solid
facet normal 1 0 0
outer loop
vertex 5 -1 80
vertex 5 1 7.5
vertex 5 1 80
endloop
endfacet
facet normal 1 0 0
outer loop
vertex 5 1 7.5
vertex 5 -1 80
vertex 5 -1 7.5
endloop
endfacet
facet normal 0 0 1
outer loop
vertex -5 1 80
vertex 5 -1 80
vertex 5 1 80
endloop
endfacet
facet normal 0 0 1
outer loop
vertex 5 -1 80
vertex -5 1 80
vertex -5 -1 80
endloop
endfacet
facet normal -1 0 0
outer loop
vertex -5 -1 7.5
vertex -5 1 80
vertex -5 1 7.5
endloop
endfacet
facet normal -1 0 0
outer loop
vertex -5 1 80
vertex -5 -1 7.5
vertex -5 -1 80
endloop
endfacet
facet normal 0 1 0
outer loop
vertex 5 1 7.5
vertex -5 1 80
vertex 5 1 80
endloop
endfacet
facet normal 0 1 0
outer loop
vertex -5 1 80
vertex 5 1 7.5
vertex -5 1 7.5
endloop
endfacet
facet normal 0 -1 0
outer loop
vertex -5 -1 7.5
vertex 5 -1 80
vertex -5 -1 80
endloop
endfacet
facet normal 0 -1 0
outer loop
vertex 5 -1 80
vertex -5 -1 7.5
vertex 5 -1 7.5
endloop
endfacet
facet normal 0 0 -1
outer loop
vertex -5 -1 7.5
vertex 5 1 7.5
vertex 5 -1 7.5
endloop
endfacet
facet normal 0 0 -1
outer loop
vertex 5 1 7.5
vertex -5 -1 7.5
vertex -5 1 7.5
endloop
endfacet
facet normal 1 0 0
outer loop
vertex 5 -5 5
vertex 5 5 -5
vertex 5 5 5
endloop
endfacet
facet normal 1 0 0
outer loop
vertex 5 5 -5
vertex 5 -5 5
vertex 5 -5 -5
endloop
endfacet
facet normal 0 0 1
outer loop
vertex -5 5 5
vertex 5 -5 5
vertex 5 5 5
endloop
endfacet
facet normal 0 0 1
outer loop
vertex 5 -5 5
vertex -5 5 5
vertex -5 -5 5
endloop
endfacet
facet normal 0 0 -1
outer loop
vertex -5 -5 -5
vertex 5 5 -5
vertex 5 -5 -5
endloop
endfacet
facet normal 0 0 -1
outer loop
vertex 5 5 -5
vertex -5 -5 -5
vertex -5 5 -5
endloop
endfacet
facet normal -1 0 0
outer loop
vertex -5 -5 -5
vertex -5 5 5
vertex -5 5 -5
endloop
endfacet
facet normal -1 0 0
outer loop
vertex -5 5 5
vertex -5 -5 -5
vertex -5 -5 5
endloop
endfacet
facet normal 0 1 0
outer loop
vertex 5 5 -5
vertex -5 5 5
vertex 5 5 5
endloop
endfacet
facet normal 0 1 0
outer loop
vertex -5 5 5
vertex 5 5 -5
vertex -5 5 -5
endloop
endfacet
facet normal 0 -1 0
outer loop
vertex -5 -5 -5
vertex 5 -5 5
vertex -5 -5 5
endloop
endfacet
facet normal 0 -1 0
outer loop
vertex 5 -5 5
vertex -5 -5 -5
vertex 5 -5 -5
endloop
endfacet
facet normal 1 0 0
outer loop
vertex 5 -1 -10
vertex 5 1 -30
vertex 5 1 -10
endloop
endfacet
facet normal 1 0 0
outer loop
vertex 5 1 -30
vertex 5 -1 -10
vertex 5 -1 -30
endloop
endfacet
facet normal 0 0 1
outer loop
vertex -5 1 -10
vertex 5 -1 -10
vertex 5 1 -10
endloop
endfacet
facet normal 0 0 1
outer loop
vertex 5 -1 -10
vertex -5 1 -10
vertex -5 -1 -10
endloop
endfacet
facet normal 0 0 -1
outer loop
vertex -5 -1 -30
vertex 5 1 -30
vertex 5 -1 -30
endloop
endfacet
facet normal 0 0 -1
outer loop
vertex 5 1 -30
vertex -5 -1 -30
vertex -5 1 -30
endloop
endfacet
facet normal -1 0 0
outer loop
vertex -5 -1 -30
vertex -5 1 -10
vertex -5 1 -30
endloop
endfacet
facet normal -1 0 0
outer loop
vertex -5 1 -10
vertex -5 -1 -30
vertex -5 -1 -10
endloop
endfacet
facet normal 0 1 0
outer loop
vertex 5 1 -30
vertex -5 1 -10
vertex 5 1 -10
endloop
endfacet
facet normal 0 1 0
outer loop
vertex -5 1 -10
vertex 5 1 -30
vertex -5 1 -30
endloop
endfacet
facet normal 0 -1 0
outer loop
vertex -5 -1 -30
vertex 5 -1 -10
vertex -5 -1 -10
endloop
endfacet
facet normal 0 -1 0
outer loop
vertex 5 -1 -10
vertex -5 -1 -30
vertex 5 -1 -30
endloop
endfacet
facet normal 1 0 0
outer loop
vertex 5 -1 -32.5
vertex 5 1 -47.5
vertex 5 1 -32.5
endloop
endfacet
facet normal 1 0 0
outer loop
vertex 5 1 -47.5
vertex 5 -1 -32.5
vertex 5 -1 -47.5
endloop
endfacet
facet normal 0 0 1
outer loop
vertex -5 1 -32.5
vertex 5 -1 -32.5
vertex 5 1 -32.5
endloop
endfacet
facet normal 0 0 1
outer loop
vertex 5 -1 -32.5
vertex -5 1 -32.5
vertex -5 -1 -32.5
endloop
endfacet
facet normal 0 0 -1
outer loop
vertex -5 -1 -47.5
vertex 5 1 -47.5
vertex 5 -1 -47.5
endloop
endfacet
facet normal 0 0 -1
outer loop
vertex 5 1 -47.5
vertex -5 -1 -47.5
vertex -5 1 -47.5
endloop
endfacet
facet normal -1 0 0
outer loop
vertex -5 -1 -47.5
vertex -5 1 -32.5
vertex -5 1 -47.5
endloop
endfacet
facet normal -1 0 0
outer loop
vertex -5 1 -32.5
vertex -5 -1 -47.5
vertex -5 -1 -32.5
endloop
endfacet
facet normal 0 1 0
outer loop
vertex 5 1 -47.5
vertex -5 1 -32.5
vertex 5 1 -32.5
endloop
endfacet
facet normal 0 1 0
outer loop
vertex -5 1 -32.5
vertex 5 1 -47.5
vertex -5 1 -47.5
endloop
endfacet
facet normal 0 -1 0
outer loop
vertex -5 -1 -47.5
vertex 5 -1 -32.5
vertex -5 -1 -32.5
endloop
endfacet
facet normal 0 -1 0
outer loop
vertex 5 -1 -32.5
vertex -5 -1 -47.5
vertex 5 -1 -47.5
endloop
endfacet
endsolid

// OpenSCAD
// Define dimensions for each component
module elongated_block() {
    cube([10, 2, 40], center = true);
}

module rectangular_block_4() {
    cube([10, 2, 20], center = true);
}

module rectangular_block_3() {
    cube([10, 2, 25], center = true);
}

module cube_1() {
    cube([10, 10, 10], center = true);
}

module rectangular_block_2() {
    cube([10, 2, 20], center = true);
}

module rectangular_block_1() {
    cube([10, 2, 15], center = true);
}

// Assemble the model based on the positional relationship
module flexible_coupling() {
    // Layer 1: elongated_block
    translate([0, 0, 60]) elongated_block();
    
    // Layer 2: rectangular_block_4
    translate([0, 0, 40]) rectangular_block_4();
    
    // Layer 3: rectangular_block_3
    translate([0, 0, 20]) rectangular_block_3();
    
    // Layer 4: cube_1
    translate([0, 0, 0]) cube_1();
    
    // Layer 5: rectangular_block_2
    translate([0, 0, -20]) rectangular_block_2();
    
    // Layer 6: rectangular_block_1
    translate([0, 0, -40]) rectangular_block_1();
}

// Render the model
flexible_coupling();
